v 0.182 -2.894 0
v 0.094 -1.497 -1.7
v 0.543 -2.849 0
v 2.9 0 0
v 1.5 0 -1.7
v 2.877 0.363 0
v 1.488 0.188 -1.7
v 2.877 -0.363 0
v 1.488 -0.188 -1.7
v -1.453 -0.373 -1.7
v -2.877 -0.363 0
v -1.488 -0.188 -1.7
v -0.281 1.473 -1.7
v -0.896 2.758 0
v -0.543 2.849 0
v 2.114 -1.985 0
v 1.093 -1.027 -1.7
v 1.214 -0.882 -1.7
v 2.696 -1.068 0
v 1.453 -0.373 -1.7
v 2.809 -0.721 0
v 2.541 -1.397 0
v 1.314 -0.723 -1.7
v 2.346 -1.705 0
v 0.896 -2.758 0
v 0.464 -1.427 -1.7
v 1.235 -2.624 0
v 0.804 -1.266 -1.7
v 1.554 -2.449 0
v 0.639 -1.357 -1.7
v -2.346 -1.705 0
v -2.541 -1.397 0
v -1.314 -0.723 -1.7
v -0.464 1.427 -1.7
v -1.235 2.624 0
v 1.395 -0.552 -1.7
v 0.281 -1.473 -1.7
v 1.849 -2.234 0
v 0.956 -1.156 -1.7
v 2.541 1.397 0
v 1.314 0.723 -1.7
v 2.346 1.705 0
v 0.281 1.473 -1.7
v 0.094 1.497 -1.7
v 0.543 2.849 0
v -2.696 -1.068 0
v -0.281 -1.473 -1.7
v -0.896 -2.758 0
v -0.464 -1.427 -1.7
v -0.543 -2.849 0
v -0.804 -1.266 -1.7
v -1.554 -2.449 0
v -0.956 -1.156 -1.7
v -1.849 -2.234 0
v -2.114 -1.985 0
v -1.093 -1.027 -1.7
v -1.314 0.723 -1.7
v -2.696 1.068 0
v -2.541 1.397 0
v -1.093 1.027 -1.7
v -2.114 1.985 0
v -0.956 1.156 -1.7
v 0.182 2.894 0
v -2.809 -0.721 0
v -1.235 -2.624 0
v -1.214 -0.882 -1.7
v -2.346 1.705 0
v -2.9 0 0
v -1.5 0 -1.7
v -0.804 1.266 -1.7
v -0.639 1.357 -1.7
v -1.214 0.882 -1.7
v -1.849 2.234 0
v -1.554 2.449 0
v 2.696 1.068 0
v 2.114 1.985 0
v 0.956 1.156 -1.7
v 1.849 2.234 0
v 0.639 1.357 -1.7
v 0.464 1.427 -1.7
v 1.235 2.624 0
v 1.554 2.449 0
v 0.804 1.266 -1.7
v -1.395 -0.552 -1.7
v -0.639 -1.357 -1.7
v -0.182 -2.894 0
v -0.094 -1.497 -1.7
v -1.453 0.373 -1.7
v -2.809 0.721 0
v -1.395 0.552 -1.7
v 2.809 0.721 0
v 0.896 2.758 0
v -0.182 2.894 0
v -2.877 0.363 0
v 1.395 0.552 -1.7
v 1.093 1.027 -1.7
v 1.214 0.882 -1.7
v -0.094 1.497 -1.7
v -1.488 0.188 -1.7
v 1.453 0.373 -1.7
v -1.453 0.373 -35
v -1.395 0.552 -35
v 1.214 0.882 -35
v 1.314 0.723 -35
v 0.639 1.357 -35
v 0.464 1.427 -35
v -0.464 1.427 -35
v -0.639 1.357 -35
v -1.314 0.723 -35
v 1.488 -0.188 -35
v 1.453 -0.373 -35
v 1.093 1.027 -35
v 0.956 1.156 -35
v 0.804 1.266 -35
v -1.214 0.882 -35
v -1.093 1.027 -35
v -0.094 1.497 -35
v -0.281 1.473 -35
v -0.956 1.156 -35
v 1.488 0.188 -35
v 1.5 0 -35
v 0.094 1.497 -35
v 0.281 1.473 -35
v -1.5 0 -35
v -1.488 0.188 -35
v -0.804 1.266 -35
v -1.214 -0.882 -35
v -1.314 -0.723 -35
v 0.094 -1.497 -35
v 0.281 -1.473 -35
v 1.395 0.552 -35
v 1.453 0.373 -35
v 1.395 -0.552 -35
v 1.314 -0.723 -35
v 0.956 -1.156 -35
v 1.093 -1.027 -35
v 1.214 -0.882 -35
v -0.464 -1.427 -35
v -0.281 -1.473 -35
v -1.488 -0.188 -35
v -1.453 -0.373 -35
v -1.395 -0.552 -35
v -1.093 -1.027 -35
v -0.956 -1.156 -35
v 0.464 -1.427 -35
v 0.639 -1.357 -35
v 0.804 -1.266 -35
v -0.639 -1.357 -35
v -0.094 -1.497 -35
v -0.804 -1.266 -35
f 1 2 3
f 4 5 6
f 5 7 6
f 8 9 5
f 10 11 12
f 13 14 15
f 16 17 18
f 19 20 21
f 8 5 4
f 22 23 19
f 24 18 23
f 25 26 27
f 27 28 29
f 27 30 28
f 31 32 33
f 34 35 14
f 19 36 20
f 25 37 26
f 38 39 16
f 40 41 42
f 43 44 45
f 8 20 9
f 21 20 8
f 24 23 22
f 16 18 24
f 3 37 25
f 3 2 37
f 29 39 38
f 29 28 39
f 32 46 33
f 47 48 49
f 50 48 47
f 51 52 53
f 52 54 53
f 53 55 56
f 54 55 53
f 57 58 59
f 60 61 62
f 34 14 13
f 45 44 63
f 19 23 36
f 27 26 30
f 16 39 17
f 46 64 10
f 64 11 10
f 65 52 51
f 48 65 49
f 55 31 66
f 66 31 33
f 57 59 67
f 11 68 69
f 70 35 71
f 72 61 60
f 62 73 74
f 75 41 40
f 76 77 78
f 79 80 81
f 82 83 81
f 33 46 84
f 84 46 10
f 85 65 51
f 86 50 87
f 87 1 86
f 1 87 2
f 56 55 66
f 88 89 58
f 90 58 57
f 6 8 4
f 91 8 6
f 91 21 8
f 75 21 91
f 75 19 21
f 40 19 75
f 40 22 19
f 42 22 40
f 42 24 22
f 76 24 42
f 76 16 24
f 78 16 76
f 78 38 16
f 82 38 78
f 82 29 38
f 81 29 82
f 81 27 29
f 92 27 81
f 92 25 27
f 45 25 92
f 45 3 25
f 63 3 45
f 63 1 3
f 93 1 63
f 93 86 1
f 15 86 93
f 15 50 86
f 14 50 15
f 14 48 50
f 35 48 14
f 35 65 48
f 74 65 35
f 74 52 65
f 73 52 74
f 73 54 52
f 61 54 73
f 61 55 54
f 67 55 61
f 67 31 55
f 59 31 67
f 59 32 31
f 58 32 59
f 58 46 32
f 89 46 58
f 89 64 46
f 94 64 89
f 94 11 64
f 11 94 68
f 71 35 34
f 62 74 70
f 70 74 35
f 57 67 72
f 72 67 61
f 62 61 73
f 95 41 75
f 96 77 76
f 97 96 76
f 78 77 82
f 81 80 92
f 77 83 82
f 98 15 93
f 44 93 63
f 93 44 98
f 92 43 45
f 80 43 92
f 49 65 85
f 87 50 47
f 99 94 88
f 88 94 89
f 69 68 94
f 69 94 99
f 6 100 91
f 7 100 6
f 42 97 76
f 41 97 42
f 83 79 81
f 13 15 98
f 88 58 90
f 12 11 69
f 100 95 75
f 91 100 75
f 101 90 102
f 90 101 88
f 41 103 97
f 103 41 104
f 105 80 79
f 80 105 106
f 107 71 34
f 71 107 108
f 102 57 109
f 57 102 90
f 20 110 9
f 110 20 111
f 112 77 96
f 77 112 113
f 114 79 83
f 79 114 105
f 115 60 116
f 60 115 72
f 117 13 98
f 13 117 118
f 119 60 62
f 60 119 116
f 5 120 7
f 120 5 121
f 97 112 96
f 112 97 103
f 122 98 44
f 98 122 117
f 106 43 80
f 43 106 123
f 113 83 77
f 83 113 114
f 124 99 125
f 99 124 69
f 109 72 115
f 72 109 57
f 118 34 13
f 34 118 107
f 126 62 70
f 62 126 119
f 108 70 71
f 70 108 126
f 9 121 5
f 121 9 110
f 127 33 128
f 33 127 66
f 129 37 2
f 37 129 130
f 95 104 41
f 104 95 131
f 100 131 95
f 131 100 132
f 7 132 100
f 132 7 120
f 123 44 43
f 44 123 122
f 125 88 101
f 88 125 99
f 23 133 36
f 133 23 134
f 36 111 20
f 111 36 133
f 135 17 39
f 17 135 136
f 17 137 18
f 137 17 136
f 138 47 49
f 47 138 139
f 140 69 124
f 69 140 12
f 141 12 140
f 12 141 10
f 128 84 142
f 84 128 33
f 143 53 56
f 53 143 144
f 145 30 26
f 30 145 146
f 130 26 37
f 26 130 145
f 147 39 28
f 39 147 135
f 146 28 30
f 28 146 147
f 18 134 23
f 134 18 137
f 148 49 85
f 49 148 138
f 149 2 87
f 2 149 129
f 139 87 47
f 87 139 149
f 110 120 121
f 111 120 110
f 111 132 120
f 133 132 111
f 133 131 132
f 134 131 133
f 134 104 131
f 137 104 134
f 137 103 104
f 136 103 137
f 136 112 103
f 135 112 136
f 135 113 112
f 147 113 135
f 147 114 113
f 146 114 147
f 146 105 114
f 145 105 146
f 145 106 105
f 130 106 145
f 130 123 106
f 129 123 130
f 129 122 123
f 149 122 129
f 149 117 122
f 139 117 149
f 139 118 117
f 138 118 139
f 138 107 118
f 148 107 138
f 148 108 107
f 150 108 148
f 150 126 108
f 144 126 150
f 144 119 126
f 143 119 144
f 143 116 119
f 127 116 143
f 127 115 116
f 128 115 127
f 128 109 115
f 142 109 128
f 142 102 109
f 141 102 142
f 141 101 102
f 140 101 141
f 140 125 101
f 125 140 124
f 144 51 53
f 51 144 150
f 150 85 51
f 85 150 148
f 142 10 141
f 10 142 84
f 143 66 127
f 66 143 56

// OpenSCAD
// Generated by SolidPython 1.1.3 on 2023-03-13 21:43:03
$fn = 50;


difference() {
	union() {
		translate(v = [0, 0, -1.7000000000]) {
			rotate(a = [0, 0, 0]) {
				cylinder(h = 1.7000000000, r1 = 1.5000000000, r2 = 2.9000000000);
			}
		}
		translate(v = [0, 0, -35]) {
			rotate(a = [0, 0, 0]) {
				cylinder(h = 35, r = 1.5000000000);
			}
		}
	}
	union();
}
/***********************************************
*********      SolidPython code:      **********
************************************************
 
from solid import *
import os
import subprocess

import oomB

import opsc_library_gen

mode = "laser"
#mode = "3d_print"

defined_objects = {}

radius_dict = {}
countersunk_dict = {}


def set_mode(m):
    global mode
    mode = m
    radius_dict['M6'] = 6.5/2
    radius_dict['M3'] = 3.3/2
    if mode == "laser":
        radius_dict['M6'] = 6/2
        radius_dict['M3'] = 3/2

    countersunk_dict['M3'] = {}
    countersunk_dict['M3']['little_rad'] = radius_dict['M3']
    countersunk_dict['M3']['big_rad'] = (5.5+0.6)/2
    if mode == "laser":
        countersunk_dict['M3']['big_rad'] = (4.75+0.6)/2
        countersunk_dict['M3']['little_rad'] = (4.75+0.6)/2

    countersunk_dict['M3']['height'] = 1.7


def opsc_make_object(filename, objects, save_type="none",resolution=50, layers = 1, tilediff = 200, mode="laser", overwrite=True):
    if overwrite or not os.path.exists(filename):
        set_mode(mode)
        save_type = save_type.lower()
        os.makedirs(os.path.dirname(filename), exist_ok=True)
        final_object = opsc_get_object(objects, mode = mode)
        # Save the final object to the specified filename    
        scad_render_to_file(final_object, filename, file_header='$fn = %s;' % resolution, include_orig_code=True)
        if save_type == "all":
            saveToAll(filename)
        elif save_type == "dxf":
            saveToDxf(filename)
        if mode == "laser":
            filename_laser = filename.replace(".scad","-flat.scad")
            scad_render_to_file(getLaser(final_object, layers=layers, tilediff=tilediff), filename_laser, file_header='$fn = %s;' % resolution, include_orig_code=True)
            if save_type == "all":
                saveToAll(filename_laser)
            elif save_type == "dxf":
                saveToDxf(filename_laser)


def opsc_get_object(objects, mode = "laser"):
    # Create the solidpython objects only include the positive objects and if they don't have inclusion or their inclusion is either all or mode
    # Initialize an empty list to store the results
    positive_objects = []

    # Iterate over the "objects" list
    for obj in objects:
        # Check if the current object has a "type" key with a value of "positive"
        if obj['type'] == 'positive':
            # Check if the current object has an "inclusion" key and its value matches "mode",
            # or if the current object does not have an "inclusion" key at all
            if not 'inclusion' in obj or obj['inclusion'] == "all" or obj['inclusion'] == mode:
                # Call the "get_opsc_item" function with the current object as an argument
                opsc_item = get_opsc_item(obj)
                # Add the result to the "positive_objects" list
                positive_objects.append(opsc_item)
# Initialize an empty list to store the results
    negative_objects = []

    # Iterate over the "objects" list
    for obj in objects:
        # Check if the current object has a "type" key with a value of "negative"
        if obj['type'] == 'negative':
            # Check if the current object has an "inclusion" key and its value matches "mode",
            # or if the current object does not have an "inclusion" key at all
            if not 'inclusion' in obj or obj['inclusion'] == "all" or obj['inclusion'] == mode:
                # Call the "get_opsc_item" function with the current object as an argument
                opsc_item = get_opsc_item(obj)
                # Add the result to the "negative_objects" list
                negative_objects.append(opsc_item)
    
    #positive_objects = [get_opsc_item(obj) for obj in objects if obj['type'] == 'positive']
    #negative_objects = [get_opsc_item(obj) for obj in objects if obj['type'] == 'negative']
    # Union the positive objects
    positive_object = union()(*positive_objects)
    # Union the negative objects
    negative_object = union()(*negative_objects)
    # Create the final object by subtracting the negative objects from the positive objects
    return difference()(positive_object, negative_object)

def get_opsc_item(params):
    # A dictionary to map radius string values to numerical values
    #radius_dict = {'small': 5, 'medium': 10, 'large': 15}
    # An array of function names for basic shapes
    basic_shapes = ['cube', 'sphere', 'cylinder']
    
    # An array of function names for other shapes
    other_shapes = ['hole', 'slot', 'rounded_rectangle', 'countersunk', 'polyg']
    


    # Convert radius to r if present, and remove radius from the params dictionary
    if 'radius' in params:
        if isinstance(params['radius'], str):
            # Use the radius_dict to map the radius string value to a numerical value
            params['r'] = radius_dict[params['radius']]
        else:
            params['r'] = params['radius']
        del params['radius']
    

    # Check if the object type is a basic shape
    if params['shape'] in basic_shapes:
        # Remove shape and unexpected dictionary values
        allowed_keys = {'size', 'r', 'r1', 'r2', 'd', 'h', 'rw', 'rh', 'dw', 'dh'}
        shape_params = {k: v for k, v in params.items() if k in allowed_keys}

        #params['m'] = "#"
        ###split for adding modifier
        try:
            m = params['m']
            func = globals()[params['shape']]
            return_value = get_opsc_transform(params,func(**shape_params))
            return_value = (return_value).set_modifier(m)
            return return_value
        except KeyError as e:
            return get_opsc_transform(params,globals()[params['shape']](**shape_params))
        
    elif params['shape'] == 'polygon':
        # Remove shape and unexpected dictionary values
        h  = params['height']
        allowed_keys = {'points'}
        shape_params = {k: v for k, v in params.items() if k in allowed_keys}

        # Call the corresponding function for the shape parameter, using ** notation to pass the shape_params dictionary as keyword arguments
        params["rot"] = [0,0,0]        
        try:
            m = params['m']
            func = globals()[params['shape']]
            return_value = get_opsc_transform(params,linear_extrude(h)(globals()[params['shape']](**shape_params)))
            return_value = (return_value).set_modifier(m)
            return return_value
        except KeyError as e:
            return_value = get_opsc_transform(params,linear_extrude(h)(globals()[params['shape']](**shape_params)))
            return_value = (return_value)
            return return_value


    # If the object type is not a basic shape, check if it's a defined object or one of the other shapes
    elif params['shape'] in other_shapes:
        # Call the corresponding function for the shape parameter, passing the params dictionary as an argument
        p2 = copy.deepcopy(params)
        p2["pos"] = [0,0,0]
        return get_opsc_transform(params,globals()[params['shape']](p2))
    
    # If the object is not a basic shape or a defined object, try to import it from a .scad file
    else:
        obj = defined_objects[params['shape']]
        return get_opsc_transform(params,obj)

def get_opsc_transform(params, solid_obj):
    # Rotate the object based on the 'rot' field in the params dictionary, or the 'rotX', 'rotY', and 'rotZ' fields if 'rot' is not present
    rot = params.get('rot', [])
    if rot:
        rotX, rotY, rotZ = rot
    else:
        rotX = params.get('rotX', 0)
        rotY = params.get('rotY', 0)
        rotZ = params.get('rotZ', 0)
    solid_obj = rotate([rotX, rotY, rotZ])(solid_obj)

    # Translate the object based on the 'pos' field in the params dictionary, or the 'x', 'y', and 'z' fields if 'pos' is not present
    pos = params.get('pos', [])
    if pos:
        x, y, z = pos
    else:
        x = params.get('x', 0)
        y = params.get('y', 0)
        z = params.get('z', 0)
    solid_obj = translate([x, y, z])(solid_obj)
    return solid_obj


import random

def opsc_easy_array(type, shape, repeats, pos_start, shift_arr, **kwargs):
    for i in range(0,3):
        repeats.append(1)
        pos_start.append(0)
        shift_arr.append(0)
    return_objects = []

    for x in range(0,repeats[0]):
        for y in range(0,repeats[1]):
            for z in range(0,repeats[2]):
                return_objects.append(opsc_easy(type, shape, pos=[pos_start[0]+x*shift_arr[0],pos_start[1]+y*shift_arr[1],pos_start[2]+z*shift_arr[2]], **kwargs))
    return return_objects                



def opsc_easy(type, shape, **kwargs):
    obj = {
        'type': type,
        'shape': shape
    }
    for param in ['size', 'r', 'r1', 'r2', 'd', 'h', 'rw', 'rh', 'dw', 'dh', 'pos', 'x', 'y', 'z', 'rot', 'rotX', 'rotY', 'rotZ', "w", "inclusion", 'sides', 'height', "m"]:
        if param in kwargs:
            obj[param] = kwargs[param]
    return obj

def hole(params):
    p2 = copy.deepcopy(params)  
    # Check if the radius is a string and replace it with the corresponding value from the dictionary
    if isinstance(p2['r'], str):
        p2['r'] = radius_dict[p2['r']]
    
    # Set the height to 100 if not specified
    if 'h' not in p2:
        p2['h'] = 100
        p2["pos"] = [0,0,-50]
    p2["center"] = True
    # Create the cylinder object
    p2["shape"] = "cylinder"
    p2["type"] = "positive"

    return get_opsc_item(p2)

import copy

def countersunk(params):
    p2 = copy.deepcopy(params)
    counter_rad = p2['r']
    p2['r'] = radius_dict[p2['r']]
    hp = copy.deepcopy(p2)
    hp["type"] = "positive"
    hp["shape"] = "hole"
    del hp["rot"]
    hol = get_opsc_item(hp)
    
    cp = copy.deepcopy(p2)
    cp["h"] = countersunk_dict[counter_rad]["height"]
    cp["r2"] = countersunk_dict[counter_rad]["little_rad"]
    cp["r1"] = countersunk_dict[counter_rad]["big_rad"]
    del cp["r"]
    del cp["rot"]
    cp["type"] = "positive"
    cp["shape"] = "cylinder"
    cp["pos"] = [0,0,0]

    top = get_opsc_item(cp)
    return union()(hol,top)



def slot(params):  
    p2 = copy.deepcopy(params) 
    if isinstance(p2['r'], str):
        p2['r'] = radius_dict[p2['r']]
    p2["type"] = "positive"
    p2["shape"] = "hole"
    del p2["rot"]
    p2["pos"] = [0,0,0]
    left = copy.deepcopy(p2)
    right = copy.deepcopy(p2)
    left["pos"][0] = p2["w"] / 2 - p2["r"] 
    
    right["pos"][0] = -p2["w"] / 2 + p2["r"] 
    pass
    leftObj = get_opsc_item(left)
    rightObj = get_opsc_item(right)
    return hull()(leftObj, rightObj)

def rounded_rectangle(params):   
    p2 = copy.deepcopy(params) 
    p2["h"] = p2["size"][2]
    p2["pos"] = p2.get("pos", [0, 0, 0]) 
    p2["type"] = "positive"
    p2["shape"] = "hole"
    p2["pos"] = [0,0,0]
    
    if 'rot' in p2:
        del p2["rot"]   
    if 'r' not in p2:
        p2["r"] = 5 
    tl = copy.deepcopy(p2)
    tr = copy.deepcopy(p2)
    bl = copy.deepcopy(p2)
    br = copy.deepcopy(p2)
    tl["pos"][0] = -(p2["size"][0] - p2["r"]*2)/2
    tl["pos"][1] = (p2["size"][1] - p2["r"]*2)/2
    tr["pos"][0] = (p2["size"][0] - p2["r"]*2)/2
    tr["pos"][1] = (p2["size"][1] - p2["r"]*2)/2
    bl["pos"][0] = -(p2["size"][0] - p2["r"]*2)/2
    bl["pos"][1] = -(p2["size"][1] - p2["r"]*2)/2
    br["pos"][0] = (p2["size"][0] - p2["r"]*2)/2
    br["pos"][1] = -(p2["size"][1] - p2["r"]*2)/2
    del tl["size"]
    del tr["size"]
    del bl["size"]
    del br["size"]
    tlo = get_opsc_item(tl)
    tro = get_opsc_item(tr)
    blo = get_opsc_item(bl)
    bro = get_opsc_item(br)    
    return hull()(tlo, tro, blo, bro)



def polyg(params):
    p2 = copy.deepcopy(params) 
    p2["type"] = "positive"
    p2["shape"] = "polygon"
    p2["pos"] = [0,0,0]
    sides = p2["sides"]
    radius = p2["r"]    
    angles = [i * 360 / sides for i in range(sides)]
    points = regular_polygon(sides, radius)
    
    p2["points"] = points
    return get_opsc_item(p2)

import math

def regular_polygon(num_sides, radius):
    # Calculate the angle between each side
    angle = 2 * math.pi / num_sides

    # Calculate the points of the polygon
    points = []
    for i in range(num_sides):
        x = radius * math.cos(i * angle)
        y = radius * math.sin(i * angle)
        points.append((x, y))
    return points

def import_scad_object(filename):
    # Import the .scad file and convert it to a solidpython object
    #filename = "parts"
    obj = import_scad(filename)
    return obj.main()



import os
import solid as solidpython

# A dictionary to store the defined objects


def load_scad_objects():
    opsc_library_gen.gen_library(defined_objects)

import random

def test(num_objects):
    objects = []
    for i in range(num_objects):
        # Choose a random shape
        #shape = random.choice(['cube', 'sphere', 'cylinder', 'hole', 'slot', "rounded_rectangle"])
        shape = random.choice(["rounded_rectangle"])

        # Choose a random type
        type = random.choice(['positive', 'negative'])
        
        # Create an empty object dictionary
        obj = {'shape': shape, 'type': type}
        
        # Set shape-specific parameters
        if obj['shape'] in ['cube']:
            obj['size'] =  [random.uniform(5, 15), random.uniform(5, 15), random.uniform(5, 15)]
        if obj['shape'] in ['rounded_rectangle']:
            obj['size'] =  [random.uniform(5, 15), random.uniform(5, 15), random.uniform(5, 15)]
            obj['r'] = random.uniform(0.5, 5)
        elif obj['shape'] == 'sphere':
            obj['r'] = random.uniform(5, 15)
        elif obj['shape'] in ['cylinder', 'hole']:
            obj['r'] = random.uniform(0.5, 5)
            obj['h'] = random.uniform(5, 15)
        elif obj['shape'] == 'slot':
            obj['r'] = random.uniform(0.5, 5)
            obj['h'] = random.uniform(5, 15)
            obj['w'] = random.uniform(5, 15)
        
        # Set a random position and rotation
        obj['pos'] = [random.uniform(-20, 20), random.uniform(-20, 20), random.uniform(-20, 20)]
        obj['rot'] = [random.uniform(-180, 180), random.uniform(-180, 180), random.uniform(-180, 180)]
        
        # Add the object to the list
        objects.append(obj)
    return objects

####### old file saving
def saveToAll(fileIn):
    saveToStl(fileIn)
    saveToDxf(fileIn)
    saveToPng(fileIn)
    saveToSvg(fileIn)

def saveToDxf(fileIn, fileOut="", copy_to_laser=True):
    if fileOut == "":
        fileOut = fileIn.replace(".scad",".dxf")
    saveToFile(fileIn, fileOut)


    
def saveToPng(fileIn, fileOut="",extra="--render"):
    if fileOut == "":
        fileOut = fileIn.replace(".scad",".png")
    saveToFile(fileIn, fileOut)

def saveToStl(fileIn, fileOut=""):
    if fileOut == "":
        fileOut = fileIn.replace(".scad",".stl")
    saveToFile(fileIn, fileOut)
    
def saveToSvg(fileIn, fileOut=""):
    if fileOut == "":
        fileOut = fileIn.replace(".scad",".svg")
    saveToFile(fileIn, fileOut)

def saveToFile(fileIn, fileOut,extra=""):
    #extra = extra + " --colorscheme Tomorrow"

    launchStr = 'openscad -o "' + fileOut + '"' + extra + ' "' + fileIn + '"'
    if ".png" in fileOut:
        launchStr = launchStr + " --render"
    print("            saveToFile launch string: " + launchStr)
    subprocess.run(launchStr)
    x=0

def getLaser(final_object,start=1.5,layers=1,thickness=3,tilediff=200):
        rv= []

        for x in range(layers):
            rv.append(translate([0,x*tilediff,0])(
                    projection()(
                        intersection()(translate([-500,-500,start+x*thickness])(cube(size=[1000,1000,0.1])),
                            final_object
                        )
                    )
            )
            )
            
        return union()(rv)

set_mode("laser")
load_scad_objects() 
 
************************************************/
